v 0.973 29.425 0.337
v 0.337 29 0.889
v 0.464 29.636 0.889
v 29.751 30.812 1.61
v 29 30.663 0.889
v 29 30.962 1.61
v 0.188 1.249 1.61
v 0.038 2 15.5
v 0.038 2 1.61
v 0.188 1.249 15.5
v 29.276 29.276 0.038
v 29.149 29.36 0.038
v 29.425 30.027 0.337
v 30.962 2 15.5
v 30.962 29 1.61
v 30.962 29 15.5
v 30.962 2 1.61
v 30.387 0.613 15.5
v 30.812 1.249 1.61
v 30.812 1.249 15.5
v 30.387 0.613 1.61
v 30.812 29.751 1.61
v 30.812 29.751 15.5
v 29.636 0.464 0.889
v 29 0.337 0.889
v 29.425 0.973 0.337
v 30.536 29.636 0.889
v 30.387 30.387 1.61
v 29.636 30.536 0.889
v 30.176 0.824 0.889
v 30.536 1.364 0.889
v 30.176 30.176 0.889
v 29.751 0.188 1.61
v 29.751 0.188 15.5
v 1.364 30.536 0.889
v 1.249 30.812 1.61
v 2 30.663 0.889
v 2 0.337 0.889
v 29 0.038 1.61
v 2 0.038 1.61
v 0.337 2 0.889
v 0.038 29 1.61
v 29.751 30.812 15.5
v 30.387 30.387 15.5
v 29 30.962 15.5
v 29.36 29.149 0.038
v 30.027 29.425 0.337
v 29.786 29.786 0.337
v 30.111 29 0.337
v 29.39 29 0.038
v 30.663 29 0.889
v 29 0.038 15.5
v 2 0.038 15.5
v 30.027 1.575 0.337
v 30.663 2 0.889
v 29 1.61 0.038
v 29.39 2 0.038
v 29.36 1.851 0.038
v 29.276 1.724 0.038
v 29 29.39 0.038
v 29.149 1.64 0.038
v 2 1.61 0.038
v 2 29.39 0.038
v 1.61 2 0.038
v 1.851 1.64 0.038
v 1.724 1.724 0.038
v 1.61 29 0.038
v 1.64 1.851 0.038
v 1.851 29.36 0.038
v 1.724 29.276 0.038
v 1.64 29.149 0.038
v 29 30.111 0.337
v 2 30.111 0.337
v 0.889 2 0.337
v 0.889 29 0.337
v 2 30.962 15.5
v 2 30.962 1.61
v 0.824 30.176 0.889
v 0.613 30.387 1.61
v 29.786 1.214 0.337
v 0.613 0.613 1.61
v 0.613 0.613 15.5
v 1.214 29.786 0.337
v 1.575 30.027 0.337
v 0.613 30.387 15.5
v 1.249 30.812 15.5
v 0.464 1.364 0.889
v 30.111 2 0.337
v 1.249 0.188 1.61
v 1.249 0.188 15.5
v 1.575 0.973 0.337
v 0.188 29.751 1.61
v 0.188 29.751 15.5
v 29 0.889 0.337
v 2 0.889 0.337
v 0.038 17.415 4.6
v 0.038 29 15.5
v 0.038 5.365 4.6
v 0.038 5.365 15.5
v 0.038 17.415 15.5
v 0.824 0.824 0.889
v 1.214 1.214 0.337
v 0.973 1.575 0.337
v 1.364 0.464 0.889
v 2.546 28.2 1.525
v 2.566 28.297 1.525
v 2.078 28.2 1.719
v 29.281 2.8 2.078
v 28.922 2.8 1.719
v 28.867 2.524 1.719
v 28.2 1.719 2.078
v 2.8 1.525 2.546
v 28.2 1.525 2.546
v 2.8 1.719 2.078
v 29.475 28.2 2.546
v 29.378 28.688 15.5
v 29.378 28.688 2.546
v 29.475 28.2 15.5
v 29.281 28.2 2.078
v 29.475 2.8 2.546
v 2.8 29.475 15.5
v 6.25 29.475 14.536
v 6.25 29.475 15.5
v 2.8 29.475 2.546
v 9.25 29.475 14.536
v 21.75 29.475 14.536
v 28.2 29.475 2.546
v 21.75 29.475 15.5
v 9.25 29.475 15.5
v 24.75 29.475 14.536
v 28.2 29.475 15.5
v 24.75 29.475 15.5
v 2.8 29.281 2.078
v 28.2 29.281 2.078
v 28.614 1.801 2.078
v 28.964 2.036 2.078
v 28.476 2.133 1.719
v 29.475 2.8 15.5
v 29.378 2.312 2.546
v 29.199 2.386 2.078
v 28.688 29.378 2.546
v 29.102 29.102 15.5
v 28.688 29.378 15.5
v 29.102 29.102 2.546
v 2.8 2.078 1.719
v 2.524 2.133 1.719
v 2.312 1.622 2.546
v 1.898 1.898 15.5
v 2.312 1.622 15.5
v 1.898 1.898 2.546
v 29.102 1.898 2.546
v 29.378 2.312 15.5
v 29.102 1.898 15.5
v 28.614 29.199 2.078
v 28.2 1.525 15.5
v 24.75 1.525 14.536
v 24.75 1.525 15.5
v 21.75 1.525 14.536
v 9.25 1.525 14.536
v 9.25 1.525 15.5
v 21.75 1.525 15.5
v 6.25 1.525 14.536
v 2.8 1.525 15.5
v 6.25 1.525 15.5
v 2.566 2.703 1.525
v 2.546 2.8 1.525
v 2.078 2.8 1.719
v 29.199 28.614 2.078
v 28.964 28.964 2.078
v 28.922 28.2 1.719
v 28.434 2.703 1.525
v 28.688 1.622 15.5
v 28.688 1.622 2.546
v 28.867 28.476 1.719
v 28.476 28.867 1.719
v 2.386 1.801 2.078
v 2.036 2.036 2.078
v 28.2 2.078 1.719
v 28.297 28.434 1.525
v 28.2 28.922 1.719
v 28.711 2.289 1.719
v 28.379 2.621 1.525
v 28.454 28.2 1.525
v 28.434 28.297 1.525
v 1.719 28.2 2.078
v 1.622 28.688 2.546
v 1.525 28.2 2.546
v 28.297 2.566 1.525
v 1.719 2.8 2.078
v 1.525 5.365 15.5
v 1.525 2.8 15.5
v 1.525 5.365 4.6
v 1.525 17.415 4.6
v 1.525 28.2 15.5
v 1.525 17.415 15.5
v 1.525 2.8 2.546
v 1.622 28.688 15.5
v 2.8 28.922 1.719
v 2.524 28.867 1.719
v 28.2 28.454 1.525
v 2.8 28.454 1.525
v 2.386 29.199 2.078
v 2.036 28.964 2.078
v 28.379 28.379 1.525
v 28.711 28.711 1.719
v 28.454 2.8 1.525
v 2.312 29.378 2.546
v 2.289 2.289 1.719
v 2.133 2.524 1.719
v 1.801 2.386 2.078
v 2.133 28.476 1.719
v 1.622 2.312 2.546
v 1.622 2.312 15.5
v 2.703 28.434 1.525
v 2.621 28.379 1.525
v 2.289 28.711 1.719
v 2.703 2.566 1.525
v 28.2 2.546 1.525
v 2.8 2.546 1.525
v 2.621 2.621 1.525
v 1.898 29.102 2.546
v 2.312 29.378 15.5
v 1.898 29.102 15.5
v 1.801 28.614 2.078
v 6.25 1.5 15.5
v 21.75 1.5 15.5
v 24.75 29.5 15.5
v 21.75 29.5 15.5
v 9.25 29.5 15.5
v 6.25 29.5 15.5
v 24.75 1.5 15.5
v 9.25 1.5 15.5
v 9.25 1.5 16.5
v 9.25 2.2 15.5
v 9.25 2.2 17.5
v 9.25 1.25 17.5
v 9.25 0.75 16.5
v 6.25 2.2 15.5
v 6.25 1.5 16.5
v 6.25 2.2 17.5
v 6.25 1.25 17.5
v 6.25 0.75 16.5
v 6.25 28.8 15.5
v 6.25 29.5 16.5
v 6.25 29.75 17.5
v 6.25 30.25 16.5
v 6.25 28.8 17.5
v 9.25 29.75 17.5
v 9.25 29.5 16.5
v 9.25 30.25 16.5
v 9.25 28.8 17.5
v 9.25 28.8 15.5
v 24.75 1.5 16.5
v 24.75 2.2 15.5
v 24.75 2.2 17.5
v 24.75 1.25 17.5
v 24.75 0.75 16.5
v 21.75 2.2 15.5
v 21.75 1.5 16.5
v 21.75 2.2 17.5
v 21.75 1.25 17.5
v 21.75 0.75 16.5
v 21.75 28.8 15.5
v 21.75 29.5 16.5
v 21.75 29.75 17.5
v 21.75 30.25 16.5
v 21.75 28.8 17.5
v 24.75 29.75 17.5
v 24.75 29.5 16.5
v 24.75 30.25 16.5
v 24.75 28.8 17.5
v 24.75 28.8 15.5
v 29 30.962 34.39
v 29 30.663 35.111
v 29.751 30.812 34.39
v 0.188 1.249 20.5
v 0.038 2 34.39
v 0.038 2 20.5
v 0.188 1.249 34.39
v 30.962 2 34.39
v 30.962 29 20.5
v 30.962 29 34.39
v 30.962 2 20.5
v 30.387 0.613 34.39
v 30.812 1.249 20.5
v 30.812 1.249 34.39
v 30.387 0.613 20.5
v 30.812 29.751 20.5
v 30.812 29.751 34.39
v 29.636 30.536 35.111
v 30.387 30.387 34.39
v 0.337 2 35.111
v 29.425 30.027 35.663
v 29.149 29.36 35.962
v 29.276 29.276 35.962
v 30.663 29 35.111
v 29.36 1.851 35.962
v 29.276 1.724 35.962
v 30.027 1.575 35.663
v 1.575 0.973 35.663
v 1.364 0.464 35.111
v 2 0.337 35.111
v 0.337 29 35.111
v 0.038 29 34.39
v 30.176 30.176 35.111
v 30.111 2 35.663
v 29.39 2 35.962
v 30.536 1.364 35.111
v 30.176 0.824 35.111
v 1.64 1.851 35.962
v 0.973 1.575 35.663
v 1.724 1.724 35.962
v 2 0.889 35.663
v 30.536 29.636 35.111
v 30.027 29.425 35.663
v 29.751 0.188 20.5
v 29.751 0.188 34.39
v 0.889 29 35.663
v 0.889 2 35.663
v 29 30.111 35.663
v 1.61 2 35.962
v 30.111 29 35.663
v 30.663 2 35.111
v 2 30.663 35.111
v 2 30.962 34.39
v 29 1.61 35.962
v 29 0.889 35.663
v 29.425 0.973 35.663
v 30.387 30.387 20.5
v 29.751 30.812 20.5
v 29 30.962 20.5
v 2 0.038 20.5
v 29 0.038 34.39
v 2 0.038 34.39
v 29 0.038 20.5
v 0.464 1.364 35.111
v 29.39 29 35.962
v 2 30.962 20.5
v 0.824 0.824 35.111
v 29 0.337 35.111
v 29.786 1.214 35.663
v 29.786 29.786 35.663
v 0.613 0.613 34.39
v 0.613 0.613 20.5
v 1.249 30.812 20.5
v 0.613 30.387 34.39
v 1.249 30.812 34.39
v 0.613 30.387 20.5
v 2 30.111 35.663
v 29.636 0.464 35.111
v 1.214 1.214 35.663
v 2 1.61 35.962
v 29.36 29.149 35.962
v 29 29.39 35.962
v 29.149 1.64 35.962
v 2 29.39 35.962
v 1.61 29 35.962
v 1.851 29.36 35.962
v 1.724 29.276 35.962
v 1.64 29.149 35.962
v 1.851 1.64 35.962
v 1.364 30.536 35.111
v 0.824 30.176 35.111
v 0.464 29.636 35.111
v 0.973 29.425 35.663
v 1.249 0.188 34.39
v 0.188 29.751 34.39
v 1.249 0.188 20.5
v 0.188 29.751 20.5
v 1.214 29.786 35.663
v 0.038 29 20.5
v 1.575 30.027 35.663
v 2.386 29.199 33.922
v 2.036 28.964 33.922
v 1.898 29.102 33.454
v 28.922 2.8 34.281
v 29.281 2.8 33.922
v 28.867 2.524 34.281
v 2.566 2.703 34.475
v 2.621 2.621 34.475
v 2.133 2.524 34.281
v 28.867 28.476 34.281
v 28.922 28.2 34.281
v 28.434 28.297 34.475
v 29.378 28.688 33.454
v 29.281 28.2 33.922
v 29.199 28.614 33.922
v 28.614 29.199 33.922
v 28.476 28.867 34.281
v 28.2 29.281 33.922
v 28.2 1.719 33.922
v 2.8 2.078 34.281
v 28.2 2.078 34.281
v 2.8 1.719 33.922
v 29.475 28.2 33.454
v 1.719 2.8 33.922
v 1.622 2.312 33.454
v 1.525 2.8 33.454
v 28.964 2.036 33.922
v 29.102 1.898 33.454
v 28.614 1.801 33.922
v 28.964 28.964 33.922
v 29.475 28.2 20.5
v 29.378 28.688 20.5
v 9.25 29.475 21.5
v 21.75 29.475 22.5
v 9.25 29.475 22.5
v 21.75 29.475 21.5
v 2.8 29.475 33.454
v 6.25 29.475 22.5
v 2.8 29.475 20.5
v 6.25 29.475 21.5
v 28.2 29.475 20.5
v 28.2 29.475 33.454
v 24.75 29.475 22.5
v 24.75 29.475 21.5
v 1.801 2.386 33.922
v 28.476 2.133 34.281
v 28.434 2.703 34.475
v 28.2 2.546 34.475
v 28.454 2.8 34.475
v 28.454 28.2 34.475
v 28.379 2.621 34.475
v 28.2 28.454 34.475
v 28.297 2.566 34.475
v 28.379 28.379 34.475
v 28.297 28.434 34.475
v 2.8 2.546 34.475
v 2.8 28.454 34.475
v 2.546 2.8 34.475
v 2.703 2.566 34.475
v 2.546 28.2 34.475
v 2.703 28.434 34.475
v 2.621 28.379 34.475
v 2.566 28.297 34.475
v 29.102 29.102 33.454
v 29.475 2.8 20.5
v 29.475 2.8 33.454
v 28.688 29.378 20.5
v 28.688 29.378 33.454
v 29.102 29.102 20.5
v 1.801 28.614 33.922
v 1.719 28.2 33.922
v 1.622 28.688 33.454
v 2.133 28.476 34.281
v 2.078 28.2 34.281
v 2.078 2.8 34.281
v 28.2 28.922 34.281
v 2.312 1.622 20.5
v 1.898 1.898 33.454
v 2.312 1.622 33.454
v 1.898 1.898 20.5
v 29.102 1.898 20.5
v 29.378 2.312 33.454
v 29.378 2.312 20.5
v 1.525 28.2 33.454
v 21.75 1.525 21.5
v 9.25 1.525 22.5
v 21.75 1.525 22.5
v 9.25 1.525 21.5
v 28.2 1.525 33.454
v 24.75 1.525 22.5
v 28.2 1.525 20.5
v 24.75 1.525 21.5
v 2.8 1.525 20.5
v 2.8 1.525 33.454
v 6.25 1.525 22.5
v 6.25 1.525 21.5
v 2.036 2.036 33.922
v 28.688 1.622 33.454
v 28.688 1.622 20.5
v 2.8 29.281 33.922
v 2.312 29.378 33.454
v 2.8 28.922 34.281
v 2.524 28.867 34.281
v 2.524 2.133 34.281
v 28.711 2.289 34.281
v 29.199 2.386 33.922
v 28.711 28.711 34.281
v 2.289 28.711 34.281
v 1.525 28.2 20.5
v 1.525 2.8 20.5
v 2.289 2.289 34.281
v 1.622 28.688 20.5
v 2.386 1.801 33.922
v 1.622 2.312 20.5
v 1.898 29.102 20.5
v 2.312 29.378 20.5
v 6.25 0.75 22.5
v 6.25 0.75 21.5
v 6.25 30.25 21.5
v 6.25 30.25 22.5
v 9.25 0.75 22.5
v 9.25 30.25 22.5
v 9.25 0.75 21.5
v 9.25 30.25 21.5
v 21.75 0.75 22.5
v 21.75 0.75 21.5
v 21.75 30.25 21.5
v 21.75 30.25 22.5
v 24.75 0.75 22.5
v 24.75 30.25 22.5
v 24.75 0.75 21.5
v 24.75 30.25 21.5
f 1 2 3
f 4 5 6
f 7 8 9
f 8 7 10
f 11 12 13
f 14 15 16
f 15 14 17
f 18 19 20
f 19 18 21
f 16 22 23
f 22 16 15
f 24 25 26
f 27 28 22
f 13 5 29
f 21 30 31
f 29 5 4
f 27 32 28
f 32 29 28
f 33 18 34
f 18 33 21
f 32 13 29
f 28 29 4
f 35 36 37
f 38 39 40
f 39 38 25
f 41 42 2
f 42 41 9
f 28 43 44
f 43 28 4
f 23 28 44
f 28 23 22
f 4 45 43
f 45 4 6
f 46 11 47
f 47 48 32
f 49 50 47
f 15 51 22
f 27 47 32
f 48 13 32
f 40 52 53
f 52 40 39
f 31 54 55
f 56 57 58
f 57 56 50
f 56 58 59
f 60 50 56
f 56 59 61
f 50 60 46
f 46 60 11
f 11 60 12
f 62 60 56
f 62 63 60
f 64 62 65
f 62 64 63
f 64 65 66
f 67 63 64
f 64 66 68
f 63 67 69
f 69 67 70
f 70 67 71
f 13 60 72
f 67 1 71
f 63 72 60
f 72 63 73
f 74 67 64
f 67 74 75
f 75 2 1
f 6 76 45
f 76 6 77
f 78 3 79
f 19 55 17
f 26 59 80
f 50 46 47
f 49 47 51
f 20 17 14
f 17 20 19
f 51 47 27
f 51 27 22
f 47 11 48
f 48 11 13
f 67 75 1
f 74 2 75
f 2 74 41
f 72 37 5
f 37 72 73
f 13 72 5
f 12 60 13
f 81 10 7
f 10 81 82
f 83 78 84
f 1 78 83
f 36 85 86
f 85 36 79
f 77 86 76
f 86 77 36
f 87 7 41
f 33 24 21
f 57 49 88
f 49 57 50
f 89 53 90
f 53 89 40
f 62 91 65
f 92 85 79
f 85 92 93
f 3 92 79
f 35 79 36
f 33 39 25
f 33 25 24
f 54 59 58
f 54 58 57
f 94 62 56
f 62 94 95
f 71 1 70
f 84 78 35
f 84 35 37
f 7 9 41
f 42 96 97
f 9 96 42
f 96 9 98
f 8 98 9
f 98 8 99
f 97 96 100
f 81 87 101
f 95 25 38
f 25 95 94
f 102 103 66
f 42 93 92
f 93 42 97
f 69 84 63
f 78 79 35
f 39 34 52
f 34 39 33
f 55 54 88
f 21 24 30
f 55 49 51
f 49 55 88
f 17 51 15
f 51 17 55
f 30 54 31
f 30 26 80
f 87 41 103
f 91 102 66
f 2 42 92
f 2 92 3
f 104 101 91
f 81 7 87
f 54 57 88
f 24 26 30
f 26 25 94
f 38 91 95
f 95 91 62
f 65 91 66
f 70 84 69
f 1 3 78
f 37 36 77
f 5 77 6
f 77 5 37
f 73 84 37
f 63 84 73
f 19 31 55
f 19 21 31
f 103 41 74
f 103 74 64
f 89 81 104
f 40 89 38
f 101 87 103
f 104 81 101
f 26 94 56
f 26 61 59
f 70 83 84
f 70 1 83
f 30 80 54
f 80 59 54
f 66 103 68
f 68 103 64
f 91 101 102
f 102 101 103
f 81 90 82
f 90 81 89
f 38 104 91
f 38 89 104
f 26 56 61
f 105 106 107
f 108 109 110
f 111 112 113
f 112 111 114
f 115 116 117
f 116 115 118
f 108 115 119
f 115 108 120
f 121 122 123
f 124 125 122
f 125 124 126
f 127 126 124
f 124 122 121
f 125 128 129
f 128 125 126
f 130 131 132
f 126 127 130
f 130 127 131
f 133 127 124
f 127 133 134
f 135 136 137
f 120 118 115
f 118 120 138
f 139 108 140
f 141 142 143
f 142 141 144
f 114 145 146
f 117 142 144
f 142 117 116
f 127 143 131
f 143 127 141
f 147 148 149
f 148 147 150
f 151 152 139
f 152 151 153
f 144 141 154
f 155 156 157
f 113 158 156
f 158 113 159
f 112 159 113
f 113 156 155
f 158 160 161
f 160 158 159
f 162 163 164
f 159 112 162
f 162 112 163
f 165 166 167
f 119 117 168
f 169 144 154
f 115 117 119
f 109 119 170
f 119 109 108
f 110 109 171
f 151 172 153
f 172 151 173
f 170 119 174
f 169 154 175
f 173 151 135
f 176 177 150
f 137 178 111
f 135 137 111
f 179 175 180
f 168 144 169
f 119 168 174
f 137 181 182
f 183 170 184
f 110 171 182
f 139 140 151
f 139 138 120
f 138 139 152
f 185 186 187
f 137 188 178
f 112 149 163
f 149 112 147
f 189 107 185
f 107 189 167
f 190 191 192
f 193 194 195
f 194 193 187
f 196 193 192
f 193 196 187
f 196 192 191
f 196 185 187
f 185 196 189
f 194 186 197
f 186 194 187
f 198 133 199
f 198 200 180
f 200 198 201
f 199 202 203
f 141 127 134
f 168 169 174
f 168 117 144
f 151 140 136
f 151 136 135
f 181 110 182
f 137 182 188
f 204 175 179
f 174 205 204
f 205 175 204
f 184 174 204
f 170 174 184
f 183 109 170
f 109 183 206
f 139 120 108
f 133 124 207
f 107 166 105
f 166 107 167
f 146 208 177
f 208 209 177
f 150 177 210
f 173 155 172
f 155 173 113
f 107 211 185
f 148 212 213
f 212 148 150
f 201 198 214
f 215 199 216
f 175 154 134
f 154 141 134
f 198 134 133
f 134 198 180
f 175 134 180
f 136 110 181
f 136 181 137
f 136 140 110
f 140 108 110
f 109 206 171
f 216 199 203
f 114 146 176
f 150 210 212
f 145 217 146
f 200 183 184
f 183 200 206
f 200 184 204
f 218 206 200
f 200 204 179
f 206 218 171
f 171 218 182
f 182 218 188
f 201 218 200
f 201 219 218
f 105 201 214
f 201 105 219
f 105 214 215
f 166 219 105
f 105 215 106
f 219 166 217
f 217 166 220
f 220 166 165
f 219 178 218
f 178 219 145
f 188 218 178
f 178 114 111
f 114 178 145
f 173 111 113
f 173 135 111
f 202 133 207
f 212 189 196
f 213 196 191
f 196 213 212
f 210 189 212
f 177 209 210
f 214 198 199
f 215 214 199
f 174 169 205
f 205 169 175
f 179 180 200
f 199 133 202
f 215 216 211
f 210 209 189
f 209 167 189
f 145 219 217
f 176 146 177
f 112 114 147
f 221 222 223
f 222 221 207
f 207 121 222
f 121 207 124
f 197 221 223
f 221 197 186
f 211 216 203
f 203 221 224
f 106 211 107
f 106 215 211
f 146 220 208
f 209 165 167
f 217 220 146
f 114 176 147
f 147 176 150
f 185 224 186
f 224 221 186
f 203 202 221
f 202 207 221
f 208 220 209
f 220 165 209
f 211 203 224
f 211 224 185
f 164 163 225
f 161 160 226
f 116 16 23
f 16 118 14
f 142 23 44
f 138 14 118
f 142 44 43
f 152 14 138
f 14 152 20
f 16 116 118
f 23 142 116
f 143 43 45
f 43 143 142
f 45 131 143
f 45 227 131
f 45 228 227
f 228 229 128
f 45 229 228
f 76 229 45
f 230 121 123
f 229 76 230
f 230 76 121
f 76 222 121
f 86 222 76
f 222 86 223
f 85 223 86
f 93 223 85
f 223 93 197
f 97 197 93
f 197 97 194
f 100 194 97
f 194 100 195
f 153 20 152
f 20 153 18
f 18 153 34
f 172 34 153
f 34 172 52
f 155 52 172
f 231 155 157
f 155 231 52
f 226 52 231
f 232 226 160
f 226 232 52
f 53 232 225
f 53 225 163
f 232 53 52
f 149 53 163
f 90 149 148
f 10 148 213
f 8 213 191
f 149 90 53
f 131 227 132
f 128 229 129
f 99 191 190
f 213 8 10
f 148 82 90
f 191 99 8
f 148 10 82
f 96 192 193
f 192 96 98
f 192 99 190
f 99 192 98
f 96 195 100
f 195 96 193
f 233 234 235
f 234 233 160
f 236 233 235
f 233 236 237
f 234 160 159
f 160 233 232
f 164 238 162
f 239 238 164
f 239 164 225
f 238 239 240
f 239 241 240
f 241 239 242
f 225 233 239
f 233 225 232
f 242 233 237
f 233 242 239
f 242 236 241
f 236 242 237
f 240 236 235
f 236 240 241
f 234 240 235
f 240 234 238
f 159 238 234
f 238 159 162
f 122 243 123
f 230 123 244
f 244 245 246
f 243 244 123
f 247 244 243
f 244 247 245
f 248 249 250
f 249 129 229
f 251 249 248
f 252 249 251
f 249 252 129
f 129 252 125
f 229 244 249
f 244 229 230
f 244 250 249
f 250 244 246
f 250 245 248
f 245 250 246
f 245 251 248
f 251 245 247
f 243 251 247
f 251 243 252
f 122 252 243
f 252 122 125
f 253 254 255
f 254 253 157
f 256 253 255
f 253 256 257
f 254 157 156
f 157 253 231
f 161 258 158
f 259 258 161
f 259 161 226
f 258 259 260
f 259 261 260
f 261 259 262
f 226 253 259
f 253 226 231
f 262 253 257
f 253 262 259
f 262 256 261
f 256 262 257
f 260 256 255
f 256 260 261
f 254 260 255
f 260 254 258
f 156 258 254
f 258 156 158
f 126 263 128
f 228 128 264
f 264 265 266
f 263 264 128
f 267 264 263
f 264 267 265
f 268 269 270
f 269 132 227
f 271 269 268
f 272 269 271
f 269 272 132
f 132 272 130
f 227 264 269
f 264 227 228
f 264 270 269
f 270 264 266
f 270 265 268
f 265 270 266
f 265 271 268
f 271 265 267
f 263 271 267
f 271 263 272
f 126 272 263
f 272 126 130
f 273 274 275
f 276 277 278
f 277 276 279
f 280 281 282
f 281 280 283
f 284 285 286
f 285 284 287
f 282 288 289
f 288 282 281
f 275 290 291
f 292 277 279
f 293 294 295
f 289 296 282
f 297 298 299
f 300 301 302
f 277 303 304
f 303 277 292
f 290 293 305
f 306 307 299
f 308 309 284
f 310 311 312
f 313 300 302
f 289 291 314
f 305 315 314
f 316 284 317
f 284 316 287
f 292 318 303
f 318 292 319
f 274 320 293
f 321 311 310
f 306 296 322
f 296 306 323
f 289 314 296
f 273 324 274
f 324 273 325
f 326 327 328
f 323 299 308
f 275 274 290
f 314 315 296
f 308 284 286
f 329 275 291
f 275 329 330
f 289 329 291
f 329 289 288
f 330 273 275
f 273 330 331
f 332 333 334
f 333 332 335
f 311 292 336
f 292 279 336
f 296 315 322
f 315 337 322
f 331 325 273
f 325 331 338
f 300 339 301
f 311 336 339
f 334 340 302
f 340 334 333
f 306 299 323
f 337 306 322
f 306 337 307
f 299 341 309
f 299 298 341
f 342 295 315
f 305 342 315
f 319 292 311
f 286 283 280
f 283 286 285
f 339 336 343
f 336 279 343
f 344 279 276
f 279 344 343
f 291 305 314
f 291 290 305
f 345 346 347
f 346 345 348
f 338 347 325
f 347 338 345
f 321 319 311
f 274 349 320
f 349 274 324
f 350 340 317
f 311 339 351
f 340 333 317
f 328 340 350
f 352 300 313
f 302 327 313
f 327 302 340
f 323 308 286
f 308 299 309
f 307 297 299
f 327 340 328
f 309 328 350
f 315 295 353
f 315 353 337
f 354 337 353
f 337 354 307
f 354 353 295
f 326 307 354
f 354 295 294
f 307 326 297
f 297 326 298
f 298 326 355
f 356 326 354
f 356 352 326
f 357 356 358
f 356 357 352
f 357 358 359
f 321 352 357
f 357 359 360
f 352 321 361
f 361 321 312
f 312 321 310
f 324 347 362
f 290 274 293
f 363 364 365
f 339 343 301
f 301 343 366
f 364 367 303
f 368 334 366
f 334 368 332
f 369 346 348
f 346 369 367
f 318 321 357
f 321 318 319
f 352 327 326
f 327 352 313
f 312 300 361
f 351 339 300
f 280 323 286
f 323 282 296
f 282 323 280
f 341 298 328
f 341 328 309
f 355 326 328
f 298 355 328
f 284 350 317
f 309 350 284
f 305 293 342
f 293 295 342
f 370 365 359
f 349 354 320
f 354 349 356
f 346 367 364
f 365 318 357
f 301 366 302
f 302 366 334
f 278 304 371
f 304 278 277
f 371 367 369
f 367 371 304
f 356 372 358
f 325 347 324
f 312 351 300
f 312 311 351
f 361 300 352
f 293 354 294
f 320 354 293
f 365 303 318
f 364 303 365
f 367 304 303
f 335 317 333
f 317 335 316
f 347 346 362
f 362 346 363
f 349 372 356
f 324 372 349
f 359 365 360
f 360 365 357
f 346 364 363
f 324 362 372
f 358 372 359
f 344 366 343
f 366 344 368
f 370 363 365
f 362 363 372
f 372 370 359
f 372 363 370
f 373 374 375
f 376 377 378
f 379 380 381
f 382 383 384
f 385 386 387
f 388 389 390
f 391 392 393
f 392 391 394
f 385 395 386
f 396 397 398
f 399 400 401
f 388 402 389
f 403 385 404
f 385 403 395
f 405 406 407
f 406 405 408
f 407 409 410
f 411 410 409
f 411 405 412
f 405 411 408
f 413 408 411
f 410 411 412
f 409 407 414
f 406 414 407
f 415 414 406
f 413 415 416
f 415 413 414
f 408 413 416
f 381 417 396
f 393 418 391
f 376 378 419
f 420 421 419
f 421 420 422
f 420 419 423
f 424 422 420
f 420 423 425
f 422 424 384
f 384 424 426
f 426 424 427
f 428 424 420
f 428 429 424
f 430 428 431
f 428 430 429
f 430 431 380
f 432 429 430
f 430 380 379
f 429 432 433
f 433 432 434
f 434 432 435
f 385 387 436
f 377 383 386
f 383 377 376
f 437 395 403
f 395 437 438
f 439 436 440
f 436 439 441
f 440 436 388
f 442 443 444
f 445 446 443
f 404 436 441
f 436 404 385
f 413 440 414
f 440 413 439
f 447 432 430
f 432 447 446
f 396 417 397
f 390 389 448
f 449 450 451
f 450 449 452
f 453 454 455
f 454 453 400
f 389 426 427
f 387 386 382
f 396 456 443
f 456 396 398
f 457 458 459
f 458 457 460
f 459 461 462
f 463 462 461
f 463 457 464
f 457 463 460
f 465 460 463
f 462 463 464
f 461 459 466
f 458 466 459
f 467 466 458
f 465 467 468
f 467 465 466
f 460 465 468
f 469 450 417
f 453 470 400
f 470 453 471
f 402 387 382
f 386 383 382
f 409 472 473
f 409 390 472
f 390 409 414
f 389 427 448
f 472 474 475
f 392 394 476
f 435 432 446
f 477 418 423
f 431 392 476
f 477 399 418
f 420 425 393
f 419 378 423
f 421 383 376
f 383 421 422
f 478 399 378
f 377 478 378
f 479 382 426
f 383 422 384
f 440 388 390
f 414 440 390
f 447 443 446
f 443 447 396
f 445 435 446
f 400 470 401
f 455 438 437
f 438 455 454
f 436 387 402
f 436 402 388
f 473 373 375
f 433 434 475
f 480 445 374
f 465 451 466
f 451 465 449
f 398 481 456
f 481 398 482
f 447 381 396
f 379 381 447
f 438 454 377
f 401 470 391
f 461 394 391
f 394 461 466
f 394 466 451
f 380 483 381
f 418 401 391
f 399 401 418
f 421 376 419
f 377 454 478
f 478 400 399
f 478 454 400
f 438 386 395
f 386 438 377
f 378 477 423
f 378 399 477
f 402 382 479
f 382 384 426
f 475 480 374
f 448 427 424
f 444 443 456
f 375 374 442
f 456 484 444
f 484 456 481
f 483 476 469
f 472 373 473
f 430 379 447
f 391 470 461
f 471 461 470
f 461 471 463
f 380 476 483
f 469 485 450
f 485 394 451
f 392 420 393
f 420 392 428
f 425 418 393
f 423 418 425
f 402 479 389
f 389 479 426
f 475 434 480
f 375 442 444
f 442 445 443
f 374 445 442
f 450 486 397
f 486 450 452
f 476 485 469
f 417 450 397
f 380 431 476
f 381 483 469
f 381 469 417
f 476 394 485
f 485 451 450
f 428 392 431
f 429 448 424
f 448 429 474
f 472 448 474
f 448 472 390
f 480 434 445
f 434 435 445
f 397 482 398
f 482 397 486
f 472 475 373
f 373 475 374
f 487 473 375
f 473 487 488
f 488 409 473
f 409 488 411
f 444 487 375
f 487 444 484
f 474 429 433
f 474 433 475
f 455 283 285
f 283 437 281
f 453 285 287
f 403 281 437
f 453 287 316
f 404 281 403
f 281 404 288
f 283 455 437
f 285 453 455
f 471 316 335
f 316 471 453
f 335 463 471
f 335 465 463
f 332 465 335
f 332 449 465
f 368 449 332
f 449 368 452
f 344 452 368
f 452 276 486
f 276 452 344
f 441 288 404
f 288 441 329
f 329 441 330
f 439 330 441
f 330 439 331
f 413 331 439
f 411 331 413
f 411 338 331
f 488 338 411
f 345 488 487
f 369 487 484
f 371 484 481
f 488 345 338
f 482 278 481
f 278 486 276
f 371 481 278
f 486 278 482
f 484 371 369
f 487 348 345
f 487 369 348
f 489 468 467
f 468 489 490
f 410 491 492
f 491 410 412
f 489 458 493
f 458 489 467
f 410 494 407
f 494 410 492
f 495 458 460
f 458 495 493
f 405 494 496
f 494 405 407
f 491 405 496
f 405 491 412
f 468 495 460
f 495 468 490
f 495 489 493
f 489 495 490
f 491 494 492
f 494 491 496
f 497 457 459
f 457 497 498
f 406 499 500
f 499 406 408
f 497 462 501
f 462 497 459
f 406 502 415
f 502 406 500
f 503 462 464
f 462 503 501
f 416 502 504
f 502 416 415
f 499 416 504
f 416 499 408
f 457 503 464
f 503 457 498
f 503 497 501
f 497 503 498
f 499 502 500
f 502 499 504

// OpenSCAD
wall = 1.5; // Decent thickness
inch = 25.4;
corner_r = 2;
outr = 2;
inr = 1.3;
epsilon = 0.001;

notch_w = 3;
notch_neck_h = 1;
notch_head_h = 1;
notch_t = 0.7;
notch_in = wall/2;

usb_h = 10.9;
usb_w = 12.05;

pcb_t = 1.6;
lead_t = 1.5;

board_offset = wall+corner_r/2;
board_w = in2mm(0.98);
board_l = in2mm(0.94);

$fn=16;

h = wall + pcb_t + lead_t + usb_h;
l = h * 2;
w = h * 2;

function mm2in(mm) = mm / inch;
function in2mm(in) = in * inch;

module round_cube(l, w, h, r=2) {
    hull() {
        for(x=[0+r, l-r]) {
            for(y=[0+r, w-r]) {
                for(z=[0+r, h-r]) {
                    translate([x, y, z])
                    sphere(r);
                }
            }
        }
    }
}

// Notches
module notch() {
    linear_extrude(height=notch_w) {
        // Neck
        polygon([
            [0, 0], [notch_t,-1], [notch_t,notch_neck_h], [0, notch_neck_h]
        ], [
            [0, 1, 2, 3]
        ]);
        translate([0, notch_neck_h, 0])
        // Head
        polygon([
            [0, 0], [notch_t+notch_in,0], [notch_t+notch_in/3,notch_head_h], [0, notch_head_h]
        ], [
            [0, 1, 2, 3]
        ]);
    }
}

module bottom_notches() {
    for(x=[l/4, l*3/4]) {
        translate([x+notch_w/2, wall+notch_t, h])
        rotate([90, 00, 270])
        notch();

        translate([x-notch_w/2, w-wall-notch_t, h])
        rotate([90, 00, 90])
        notch();
    }
}

module bottom() {
    difference() {
        // Full shell
        intersection() {
            difference() {
                round_cube(l, w, h*2, r=outr);
                translate([wall, wall, wall])
                round_cube(l-2*wall, w-2*wall, (h-wall)*2, r=inr);
            }
            // Intersect with bottom half
            cube([l, w, h]);
        }

        // USB Plug hole
        hole_z = wall + 3.10;
        translate([-1, board_offset + in2mm(0.35) - usb_w/2, hole_z])
        cube([usb_w, usb_w, usb_h+epsilon]);

        // Air holes
        /* for (ai=[2:9]) { */
        /*     translate([l-2*ai, -epsilon, wall]) */
        /*     cube([1, w+2*epsilon, h-2*wall]); */
        /* } */
    }

    bottom_notches();
}

module top() {
    translate([0, 0, 5]) {
        // Main shell
        difference() {
            intersection() {
                difference() {
                    round_cube(l, w, h*2, r=outr);
                    translate([wall, wall, wall])
                    round_cube(l-2*wall, w-2*wall, (h-wall)*2, r=inr);
                }
                // Top half
                translate([0, 0, h])
                cube([l, w, h]);
            }
            
            // Notch holes
            translate([l/4-notch_w/2, wall-notch_in, h+notch_neck_h])
            cube([notch_w, w-2*notch_in, notch_head_h]);
            translate([l*3/4-notch_w/2, wall-notch_in, h+notch_neck_h])
            cube([notch_w, w-2*notch_in, notch_head_h]);

            // Maia logo
            /* logo_w = w * 2/3; */
            /* translate([(w-logo_w)/2, (w-logo_w)/2, h*2-(wall-0.7)]) */
            /* linear_extrude(height=1+epsilon) resize([logo_w, logo_w]) import("/Users/sean/Desktop/20151116/lohgo.dxf"); */
        }
    }
}

module board() {
    translate([board_offset, board_offset, wall + lead_t])
    color([0.5, 0.9, 0.6])
    cube([board_w, board_l, pcb_t]);
}

bottom();
*board();
top();
